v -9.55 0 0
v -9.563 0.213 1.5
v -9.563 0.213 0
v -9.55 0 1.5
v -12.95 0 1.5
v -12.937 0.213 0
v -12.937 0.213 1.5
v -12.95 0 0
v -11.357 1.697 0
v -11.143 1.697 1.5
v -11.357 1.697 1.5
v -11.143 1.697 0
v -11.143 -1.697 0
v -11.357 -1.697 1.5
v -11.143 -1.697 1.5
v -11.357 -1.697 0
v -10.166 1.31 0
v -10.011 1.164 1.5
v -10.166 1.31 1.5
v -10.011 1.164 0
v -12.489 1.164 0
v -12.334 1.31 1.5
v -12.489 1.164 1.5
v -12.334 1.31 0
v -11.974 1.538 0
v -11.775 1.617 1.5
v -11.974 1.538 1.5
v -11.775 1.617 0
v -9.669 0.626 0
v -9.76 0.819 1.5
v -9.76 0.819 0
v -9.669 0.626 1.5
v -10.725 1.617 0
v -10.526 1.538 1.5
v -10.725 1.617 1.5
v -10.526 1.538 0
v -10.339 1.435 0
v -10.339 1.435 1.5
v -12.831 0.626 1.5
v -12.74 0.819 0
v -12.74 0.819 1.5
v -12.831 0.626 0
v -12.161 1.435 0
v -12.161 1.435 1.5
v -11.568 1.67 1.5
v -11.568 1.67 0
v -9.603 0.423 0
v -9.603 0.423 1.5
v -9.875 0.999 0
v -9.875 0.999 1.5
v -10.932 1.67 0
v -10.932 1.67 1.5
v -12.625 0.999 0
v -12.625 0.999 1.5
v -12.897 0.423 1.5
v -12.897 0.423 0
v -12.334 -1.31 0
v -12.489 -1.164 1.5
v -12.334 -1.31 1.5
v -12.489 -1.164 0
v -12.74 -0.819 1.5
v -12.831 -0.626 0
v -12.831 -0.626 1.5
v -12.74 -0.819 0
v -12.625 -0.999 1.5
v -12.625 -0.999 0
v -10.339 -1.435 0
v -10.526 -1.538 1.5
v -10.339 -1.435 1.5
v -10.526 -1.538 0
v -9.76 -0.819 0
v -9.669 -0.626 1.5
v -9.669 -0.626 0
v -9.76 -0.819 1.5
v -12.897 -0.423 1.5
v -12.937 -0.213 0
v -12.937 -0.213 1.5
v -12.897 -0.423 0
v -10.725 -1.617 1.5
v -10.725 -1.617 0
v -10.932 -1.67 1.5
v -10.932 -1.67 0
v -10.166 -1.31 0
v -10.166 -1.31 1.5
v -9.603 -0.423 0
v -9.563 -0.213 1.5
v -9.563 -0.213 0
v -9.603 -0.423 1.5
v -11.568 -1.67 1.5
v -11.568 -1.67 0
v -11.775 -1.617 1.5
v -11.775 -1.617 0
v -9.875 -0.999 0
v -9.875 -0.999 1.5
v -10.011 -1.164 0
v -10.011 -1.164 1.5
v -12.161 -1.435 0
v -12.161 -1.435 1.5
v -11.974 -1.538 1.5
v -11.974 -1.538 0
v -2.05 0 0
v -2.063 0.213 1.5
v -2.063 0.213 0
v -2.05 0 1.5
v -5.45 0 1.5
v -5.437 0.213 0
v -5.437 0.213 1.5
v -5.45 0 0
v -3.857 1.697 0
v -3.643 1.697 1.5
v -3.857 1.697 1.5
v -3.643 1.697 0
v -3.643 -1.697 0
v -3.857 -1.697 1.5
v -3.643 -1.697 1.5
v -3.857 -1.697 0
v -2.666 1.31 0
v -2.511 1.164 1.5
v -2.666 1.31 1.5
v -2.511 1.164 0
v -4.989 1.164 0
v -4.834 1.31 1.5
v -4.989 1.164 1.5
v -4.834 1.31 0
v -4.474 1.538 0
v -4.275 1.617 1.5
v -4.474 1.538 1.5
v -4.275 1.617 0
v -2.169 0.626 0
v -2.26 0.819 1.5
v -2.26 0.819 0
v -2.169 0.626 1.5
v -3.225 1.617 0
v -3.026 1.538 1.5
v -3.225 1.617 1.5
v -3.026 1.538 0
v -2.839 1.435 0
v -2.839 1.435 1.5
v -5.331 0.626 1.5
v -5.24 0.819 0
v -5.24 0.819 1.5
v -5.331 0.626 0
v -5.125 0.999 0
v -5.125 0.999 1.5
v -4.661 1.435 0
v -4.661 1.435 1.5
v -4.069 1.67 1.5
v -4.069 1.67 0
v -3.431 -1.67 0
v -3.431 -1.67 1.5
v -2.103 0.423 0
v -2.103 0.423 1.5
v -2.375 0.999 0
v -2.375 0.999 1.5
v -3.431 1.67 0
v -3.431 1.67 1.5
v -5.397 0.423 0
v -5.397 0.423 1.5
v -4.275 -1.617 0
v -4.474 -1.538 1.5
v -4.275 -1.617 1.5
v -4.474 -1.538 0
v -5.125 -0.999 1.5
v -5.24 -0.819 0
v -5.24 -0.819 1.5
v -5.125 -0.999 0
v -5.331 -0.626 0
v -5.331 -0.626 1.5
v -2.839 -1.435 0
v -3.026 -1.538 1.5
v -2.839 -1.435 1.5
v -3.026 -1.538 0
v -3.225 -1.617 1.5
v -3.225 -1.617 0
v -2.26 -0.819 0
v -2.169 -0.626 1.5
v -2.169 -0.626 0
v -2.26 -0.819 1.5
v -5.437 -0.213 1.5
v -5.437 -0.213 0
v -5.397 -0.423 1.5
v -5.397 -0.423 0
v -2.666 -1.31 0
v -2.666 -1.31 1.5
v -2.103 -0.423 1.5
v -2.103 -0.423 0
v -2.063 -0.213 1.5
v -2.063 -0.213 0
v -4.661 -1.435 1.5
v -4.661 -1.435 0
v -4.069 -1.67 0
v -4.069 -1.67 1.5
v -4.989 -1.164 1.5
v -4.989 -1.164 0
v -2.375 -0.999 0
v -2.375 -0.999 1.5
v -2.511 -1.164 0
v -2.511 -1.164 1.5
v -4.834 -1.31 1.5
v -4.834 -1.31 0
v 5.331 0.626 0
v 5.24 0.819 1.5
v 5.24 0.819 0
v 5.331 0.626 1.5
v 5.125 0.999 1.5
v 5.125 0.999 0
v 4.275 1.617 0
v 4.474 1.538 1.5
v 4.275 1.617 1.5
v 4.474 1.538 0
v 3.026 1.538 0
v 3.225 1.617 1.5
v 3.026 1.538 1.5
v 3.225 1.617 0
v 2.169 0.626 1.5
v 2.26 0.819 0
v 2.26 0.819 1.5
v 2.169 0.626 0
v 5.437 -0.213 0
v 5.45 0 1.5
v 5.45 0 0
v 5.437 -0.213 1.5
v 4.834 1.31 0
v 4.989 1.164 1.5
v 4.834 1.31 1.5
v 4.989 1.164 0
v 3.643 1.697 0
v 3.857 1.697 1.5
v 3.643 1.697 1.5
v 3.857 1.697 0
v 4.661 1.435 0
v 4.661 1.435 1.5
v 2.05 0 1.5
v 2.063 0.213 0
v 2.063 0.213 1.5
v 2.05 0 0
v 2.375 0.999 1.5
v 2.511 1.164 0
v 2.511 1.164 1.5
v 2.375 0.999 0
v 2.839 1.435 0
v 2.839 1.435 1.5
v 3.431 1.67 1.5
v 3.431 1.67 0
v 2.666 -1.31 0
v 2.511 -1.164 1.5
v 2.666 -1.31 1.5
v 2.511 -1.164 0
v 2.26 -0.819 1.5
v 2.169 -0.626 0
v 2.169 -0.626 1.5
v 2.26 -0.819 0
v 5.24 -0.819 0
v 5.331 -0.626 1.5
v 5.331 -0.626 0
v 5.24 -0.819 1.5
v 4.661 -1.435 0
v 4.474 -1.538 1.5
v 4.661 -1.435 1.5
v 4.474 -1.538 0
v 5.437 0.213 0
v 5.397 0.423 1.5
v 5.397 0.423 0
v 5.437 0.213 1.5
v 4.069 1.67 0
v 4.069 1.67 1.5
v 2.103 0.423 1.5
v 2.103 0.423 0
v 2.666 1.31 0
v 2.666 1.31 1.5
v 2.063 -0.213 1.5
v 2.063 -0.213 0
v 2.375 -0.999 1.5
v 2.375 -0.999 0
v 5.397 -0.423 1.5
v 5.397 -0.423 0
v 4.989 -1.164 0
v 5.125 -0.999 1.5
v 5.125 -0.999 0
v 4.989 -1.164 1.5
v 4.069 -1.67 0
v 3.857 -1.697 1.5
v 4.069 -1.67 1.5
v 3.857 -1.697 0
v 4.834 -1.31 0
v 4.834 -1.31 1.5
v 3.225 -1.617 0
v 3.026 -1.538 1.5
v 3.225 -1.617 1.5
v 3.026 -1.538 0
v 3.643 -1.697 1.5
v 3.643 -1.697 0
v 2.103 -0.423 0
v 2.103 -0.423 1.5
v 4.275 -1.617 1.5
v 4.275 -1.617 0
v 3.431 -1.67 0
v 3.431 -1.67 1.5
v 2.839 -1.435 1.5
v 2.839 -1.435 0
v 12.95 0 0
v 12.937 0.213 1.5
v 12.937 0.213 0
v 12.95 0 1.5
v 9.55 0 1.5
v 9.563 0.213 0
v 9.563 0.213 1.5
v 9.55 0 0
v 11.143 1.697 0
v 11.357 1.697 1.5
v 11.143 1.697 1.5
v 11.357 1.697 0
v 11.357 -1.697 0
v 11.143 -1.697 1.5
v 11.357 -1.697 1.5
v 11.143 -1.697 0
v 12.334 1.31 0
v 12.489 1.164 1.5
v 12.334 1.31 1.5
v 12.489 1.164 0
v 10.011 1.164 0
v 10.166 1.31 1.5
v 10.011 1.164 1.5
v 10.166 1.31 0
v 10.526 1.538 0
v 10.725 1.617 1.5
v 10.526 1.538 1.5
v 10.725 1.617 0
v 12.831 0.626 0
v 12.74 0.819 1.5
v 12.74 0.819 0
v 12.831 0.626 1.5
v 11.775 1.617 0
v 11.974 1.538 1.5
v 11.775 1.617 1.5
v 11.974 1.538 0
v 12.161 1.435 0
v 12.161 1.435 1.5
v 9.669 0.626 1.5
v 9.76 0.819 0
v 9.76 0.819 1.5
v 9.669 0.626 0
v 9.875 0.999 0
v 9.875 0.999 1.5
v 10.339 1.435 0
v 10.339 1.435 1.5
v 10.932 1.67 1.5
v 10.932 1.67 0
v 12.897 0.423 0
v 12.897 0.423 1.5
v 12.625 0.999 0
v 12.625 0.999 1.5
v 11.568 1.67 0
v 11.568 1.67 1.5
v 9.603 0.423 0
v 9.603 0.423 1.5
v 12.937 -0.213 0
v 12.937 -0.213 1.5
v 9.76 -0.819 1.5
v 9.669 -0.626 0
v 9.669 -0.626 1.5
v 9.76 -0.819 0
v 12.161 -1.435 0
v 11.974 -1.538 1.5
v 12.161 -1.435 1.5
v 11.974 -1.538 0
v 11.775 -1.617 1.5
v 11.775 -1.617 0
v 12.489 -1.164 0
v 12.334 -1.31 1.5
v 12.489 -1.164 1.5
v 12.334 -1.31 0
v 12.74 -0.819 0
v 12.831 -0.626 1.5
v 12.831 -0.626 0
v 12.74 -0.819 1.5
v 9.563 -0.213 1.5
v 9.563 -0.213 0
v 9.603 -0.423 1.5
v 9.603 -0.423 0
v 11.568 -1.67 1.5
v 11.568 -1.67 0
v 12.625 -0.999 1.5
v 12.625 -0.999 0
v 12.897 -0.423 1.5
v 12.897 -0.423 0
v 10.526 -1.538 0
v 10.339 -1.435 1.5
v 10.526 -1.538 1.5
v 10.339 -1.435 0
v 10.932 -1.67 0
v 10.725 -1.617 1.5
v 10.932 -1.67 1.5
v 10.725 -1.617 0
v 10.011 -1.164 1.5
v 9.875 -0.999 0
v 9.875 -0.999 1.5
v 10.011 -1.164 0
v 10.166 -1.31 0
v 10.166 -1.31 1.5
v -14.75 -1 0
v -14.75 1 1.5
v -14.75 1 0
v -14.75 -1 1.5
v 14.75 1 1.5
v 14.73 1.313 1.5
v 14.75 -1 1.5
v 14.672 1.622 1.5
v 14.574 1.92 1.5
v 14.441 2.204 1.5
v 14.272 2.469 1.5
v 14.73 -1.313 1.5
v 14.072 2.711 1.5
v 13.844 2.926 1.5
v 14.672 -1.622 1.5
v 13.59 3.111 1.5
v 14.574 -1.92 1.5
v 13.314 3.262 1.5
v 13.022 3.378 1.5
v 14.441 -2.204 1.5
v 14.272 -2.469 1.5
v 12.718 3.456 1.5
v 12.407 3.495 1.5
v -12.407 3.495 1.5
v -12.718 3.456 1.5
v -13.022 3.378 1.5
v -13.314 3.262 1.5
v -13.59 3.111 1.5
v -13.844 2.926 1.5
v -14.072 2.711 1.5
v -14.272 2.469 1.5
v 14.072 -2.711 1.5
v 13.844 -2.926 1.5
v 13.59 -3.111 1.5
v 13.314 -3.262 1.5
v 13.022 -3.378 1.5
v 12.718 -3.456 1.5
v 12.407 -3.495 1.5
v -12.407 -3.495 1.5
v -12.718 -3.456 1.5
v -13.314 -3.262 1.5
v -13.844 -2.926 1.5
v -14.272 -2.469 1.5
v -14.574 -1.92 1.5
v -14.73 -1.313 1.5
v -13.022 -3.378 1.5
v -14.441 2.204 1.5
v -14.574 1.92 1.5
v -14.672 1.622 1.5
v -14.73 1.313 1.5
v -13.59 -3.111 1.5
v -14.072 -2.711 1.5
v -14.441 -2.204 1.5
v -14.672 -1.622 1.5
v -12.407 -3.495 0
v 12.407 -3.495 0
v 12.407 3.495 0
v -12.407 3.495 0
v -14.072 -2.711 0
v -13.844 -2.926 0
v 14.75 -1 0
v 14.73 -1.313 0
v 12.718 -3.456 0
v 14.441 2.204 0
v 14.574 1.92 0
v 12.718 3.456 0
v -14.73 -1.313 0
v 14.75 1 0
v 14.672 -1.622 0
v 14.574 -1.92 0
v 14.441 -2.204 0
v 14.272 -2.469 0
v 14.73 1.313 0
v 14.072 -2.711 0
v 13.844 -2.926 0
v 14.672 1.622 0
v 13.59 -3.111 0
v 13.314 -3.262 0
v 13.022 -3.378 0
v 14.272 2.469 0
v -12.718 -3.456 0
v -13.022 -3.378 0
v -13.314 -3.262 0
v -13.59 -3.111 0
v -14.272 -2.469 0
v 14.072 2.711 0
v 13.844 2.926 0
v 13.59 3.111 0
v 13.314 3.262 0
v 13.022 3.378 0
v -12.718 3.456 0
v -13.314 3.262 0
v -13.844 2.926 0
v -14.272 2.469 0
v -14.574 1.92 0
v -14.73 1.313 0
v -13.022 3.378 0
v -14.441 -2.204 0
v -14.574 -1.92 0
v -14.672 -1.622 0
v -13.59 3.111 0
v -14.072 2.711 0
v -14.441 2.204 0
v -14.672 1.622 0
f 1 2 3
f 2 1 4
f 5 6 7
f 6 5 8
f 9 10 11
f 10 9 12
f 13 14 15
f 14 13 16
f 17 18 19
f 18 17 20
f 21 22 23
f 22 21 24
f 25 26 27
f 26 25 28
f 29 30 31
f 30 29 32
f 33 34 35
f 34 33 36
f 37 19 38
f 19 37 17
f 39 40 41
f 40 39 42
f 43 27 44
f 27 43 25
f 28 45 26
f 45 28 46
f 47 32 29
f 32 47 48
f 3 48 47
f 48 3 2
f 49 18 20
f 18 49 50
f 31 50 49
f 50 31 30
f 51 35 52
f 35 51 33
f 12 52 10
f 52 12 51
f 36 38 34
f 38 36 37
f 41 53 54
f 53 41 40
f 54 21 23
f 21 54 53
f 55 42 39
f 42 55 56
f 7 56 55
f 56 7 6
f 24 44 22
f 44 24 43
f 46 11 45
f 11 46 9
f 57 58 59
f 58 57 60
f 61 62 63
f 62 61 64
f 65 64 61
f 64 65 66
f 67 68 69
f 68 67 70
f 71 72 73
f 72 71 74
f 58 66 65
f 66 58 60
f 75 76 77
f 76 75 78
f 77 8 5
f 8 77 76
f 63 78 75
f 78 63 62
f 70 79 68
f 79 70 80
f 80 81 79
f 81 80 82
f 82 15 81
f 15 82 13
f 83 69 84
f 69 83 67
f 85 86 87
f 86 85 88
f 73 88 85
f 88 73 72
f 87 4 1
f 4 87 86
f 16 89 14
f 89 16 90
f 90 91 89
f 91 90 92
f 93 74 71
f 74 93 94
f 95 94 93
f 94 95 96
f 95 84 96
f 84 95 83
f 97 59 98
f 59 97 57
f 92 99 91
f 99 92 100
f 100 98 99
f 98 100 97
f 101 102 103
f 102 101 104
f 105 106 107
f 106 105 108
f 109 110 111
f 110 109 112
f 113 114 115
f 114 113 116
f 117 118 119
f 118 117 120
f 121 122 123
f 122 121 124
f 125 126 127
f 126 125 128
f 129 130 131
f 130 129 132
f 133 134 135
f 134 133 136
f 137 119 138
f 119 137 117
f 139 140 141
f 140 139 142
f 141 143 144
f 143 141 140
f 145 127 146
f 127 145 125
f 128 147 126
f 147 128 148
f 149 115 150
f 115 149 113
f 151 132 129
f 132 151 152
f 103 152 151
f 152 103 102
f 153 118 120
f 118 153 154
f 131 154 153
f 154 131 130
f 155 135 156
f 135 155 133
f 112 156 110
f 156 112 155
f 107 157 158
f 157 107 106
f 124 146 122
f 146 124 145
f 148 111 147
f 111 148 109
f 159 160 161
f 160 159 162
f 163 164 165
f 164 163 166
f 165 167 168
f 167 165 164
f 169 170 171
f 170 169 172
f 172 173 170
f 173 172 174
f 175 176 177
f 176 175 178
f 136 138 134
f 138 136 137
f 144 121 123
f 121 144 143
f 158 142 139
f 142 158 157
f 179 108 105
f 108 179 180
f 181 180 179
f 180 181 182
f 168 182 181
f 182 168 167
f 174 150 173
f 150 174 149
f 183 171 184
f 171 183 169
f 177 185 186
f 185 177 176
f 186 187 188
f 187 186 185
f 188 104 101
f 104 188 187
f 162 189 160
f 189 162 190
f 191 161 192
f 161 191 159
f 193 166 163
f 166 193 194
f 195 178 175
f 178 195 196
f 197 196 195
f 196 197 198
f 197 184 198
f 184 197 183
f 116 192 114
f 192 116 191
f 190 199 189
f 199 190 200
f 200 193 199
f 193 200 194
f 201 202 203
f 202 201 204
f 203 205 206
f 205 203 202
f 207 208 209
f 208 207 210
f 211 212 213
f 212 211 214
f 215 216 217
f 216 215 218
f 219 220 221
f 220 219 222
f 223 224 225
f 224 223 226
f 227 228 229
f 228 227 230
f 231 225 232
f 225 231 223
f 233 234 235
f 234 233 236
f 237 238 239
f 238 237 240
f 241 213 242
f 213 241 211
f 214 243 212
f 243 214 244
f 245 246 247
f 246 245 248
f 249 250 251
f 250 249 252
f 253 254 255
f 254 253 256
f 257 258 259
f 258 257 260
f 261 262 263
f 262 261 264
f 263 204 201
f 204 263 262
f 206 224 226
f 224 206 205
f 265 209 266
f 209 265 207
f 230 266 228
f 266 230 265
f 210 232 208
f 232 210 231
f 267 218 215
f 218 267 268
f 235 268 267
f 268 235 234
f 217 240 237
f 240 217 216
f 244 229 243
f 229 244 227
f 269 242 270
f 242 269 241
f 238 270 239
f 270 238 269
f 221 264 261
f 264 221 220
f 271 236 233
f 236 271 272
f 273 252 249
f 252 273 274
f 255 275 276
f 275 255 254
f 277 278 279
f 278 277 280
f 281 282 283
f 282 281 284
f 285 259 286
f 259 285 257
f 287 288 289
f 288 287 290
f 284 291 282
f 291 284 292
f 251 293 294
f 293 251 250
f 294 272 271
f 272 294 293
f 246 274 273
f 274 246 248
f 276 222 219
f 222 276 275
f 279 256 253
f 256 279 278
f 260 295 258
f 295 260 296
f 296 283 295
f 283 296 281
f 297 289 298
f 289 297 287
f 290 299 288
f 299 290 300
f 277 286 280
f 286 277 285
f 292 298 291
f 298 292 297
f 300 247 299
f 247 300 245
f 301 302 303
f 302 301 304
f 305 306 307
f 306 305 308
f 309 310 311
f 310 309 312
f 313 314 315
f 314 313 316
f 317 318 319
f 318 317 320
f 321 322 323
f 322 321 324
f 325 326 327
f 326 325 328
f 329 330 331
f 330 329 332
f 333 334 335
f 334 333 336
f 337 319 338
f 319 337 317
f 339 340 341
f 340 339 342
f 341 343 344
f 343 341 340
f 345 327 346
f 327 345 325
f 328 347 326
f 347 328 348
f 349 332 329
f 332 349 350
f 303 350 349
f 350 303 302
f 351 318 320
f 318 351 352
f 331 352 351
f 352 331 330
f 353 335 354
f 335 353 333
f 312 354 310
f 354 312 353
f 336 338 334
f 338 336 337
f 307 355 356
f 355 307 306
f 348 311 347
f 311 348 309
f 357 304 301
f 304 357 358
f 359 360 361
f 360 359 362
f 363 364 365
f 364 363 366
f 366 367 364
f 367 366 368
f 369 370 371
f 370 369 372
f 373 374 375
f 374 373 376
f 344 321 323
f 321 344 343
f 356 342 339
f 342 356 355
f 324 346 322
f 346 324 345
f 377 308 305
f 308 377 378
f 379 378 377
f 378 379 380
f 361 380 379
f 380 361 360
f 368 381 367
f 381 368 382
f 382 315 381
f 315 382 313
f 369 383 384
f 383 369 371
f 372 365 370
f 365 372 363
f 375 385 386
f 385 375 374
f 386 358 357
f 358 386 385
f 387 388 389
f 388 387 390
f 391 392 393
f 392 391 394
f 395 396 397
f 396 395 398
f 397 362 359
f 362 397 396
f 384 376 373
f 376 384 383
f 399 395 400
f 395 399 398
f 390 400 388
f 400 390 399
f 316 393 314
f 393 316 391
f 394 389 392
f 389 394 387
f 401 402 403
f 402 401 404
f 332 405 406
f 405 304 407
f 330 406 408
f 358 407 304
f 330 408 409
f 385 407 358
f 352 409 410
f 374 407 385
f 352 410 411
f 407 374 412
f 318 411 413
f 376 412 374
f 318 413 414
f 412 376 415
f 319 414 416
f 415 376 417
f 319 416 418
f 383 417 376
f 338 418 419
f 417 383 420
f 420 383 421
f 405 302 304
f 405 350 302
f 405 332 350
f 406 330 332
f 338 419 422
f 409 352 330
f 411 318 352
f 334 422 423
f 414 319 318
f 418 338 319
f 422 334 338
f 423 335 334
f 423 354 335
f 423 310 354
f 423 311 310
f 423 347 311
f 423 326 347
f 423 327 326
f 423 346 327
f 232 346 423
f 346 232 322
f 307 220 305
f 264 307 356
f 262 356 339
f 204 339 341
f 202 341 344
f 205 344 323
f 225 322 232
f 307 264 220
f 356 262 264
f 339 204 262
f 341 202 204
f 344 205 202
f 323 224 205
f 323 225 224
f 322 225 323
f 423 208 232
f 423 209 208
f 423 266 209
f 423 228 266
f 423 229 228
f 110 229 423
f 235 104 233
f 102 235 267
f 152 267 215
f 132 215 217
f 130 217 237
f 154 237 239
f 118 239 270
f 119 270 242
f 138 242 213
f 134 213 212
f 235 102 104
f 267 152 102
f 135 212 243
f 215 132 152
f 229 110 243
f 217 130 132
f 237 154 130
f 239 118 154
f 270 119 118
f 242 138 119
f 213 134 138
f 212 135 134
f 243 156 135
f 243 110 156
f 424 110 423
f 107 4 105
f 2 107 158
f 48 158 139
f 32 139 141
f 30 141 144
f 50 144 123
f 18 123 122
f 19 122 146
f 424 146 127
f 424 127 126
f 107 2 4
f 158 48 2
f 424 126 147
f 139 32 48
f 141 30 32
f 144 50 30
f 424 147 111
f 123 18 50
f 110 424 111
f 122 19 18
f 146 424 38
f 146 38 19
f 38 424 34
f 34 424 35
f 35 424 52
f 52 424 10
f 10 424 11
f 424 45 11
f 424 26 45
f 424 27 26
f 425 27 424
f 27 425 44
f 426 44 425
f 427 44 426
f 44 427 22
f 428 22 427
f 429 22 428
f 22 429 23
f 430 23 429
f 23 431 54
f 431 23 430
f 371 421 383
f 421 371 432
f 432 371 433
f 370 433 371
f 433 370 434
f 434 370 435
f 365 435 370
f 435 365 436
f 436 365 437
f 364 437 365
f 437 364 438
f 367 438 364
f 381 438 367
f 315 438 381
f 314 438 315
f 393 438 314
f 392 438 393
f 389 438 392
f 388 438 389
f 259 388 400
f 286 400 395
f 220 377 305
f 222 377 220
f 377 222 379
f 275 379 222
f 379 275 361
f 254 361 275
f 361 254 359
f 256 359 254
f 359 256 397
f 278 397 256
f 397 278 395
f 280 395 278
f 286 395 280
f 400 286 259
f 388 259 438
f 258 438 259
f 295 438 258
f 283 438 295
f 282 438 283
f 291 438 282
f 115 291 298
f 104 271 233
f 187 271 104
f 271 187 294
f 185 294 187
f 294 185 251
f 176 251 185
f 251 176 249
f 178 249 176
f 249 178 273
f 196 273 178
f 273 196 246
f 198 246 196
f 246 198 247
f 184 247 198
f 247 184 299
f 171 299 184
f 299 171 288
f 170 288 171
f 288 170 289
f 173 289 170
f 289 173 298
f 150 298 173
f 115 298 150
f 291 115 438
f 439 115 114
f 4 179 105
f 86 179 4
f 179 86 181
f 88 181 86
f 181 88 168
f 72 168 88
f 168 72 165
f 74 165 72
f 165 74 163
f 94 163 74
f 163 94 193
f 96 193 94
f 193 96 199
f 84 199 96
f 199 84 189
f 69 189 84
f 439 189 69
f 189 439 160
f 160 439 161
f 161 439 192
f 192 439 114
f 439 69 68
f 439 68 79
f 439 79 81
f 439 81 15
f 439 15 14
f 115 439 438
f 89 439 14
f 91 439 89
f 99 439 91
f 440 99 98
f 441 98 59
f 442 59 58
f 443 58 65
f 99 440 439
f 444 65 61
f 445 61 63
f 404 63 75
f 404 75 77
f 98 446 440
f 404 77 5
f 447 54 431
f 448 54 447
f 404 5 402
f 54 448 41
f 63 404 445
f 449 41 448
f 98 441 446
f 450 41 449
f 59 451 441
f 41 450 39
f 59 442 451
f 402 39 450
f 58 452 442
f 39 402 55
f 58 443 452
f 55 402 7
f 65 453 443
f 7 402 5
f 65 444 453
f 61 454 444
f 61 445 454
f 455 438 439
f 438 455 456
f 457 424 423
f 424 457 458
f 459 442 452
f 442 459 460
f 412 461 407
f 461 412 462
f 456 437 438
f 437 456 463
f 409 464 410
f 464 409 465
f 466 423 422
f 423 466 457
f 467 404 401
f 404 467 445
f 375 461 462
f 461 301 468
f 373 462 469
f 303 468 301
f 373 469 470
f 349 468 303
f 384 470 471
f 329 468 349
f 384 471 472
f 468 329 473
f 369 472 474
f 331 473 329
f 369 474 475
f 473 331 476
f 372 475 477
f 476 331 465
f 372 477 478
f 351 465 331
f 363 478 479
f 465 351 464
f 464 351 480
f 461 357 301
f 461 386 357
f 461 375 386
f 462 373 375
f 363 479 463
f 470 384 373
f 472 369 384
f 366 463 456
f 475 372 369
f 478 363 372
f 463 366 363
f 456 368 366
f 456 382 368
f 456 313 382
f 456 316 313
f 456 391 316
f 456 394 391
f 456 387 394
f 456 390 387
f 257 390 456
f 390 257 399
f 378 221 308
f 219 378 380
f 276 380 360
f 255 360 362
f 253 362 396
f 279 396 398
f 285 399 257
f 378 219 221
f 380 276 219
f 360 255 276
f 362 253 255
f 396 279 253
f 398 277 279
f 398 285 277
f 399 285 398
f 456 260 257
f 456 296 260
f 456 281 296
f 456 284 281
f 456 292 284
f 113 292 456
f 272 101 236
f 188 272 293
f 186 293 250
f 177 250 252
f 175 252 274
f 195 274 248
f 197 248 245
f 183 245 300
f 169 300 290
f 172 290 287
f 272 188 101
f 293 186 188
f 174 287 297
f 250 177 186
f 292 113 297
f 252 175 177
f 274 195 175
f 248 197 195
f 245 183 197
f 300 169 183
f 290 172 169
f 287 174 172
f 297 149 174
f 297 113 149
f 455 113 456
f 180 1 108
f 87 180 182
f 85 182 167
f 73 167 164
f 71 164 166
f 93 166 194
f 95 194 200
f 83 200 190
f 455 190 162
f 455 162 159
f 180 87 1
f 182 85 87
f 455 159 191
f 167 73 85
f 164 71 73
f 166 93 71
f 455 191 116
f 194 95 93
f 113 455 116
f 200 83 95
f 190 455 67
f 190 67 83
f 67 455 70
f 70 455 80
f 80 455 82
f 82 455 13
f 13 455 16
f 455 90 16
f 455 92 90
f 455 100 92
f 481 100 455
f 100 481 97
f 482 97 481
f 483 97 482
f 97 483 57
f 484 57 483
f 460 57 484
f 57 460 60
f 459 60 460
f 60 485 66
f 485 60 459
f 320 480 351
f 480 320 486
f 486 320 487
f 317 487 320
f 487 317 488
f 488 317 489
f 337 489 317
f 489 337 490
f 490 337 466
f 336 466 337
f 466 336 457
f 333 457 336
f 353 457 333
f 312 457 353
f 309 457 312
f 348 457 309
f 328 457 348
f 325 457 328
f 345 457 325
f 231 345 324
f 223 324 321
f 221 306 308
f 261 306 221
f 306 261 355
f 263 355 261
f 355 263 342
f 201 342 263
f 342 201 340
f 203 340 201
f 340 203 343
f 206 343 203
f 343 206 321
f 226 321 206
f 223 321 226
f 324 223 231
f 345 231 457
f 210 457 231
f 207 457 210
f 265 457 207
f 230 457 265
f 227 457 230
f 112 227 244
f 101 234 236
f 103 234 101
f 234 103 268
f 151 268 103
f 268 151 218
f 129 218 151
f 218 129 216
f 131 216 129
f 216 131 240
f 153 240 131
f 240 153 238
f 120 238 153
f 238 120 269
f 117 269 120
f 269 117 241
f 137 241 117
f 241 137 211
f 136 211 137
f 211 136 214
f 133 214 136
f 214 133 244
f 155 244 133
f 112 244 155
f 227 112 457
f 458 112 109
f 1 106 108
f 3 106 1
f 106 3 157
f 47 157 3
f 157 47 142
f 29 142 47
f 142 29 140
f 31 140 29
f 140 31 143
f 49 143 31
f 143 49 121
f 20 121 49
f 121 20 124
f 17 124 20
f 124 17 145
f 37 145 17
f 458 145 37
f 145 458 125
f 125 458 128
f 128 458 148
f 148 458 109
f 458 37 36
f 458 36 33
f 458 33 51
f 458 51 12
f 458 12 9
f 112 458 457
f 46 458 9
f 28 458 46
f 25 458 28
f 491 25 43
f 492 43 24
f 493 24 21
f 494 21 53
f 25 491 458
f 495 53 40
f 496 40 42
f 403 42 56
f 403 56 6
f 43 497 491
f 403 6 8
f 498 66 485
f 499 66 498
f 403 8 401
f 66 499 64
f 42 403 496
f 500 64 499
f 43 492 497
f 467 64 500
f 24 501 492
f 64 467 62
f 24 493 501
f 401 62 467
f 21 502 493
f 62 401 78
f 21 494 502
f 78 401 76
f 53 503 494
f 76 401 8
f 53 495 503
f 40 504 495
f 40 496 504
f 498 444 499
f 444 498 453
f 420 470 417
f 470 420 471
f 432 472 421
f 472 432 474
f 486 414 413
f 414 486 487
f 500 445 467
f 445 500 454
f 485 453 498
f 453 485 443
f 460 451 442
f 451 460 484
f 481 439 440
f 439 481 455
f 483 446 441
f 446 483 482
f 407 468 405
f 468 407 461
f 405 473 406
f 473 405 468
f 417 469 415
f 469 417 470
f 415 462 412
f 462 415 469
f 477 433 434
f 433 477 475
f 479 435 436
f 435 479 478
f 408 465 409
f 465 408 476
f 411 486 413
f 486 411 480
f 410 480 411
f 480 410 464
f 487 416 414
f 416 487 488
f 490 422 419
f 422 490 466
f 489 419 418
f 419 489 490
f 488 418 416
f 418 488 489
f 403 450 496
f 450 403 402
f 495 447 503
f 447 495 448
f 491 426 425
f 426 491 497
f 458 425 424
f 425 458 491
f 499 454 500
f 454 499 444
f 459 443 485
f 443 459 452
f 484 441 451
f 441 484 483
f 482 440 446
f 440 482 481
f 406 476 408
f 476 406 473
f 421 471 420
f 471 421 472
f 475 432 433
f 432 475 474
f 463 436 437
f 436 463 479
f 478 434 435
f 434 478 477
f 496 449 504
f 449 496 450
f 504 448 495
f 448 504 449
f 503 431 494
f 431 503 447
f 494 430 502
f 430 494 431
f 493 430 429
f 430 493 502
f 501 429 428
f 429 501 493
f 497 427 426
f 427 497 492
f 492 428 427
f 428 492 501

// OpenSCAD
$fn = 50;


difference() {
	union() {
		translate(v = [0, 0, 0]) {
			rotate(a = [0, 0, 0]) {
				hull() {
					translate(v = [-12.2500000000, 1.0000000000, 0]) {
						rotate(a = [0, 0, 0]) {
							translate(v = [0, 0, 0]) {
								rotate(a = [0, 0, 0]) {
									cylinder(h = 1.5000000000, r = 2.5000000000);
								}
							}
						}
					}
					translate(v = [12.2500000000, 1.0000000000, 0]) {
						rotate(a = [0, 0, 0]) {
							translate(v = [0, 0, 0]) {
								rotate(a = [0, 0, 0]) {
									cylinder(h = 1.5000000000, r = 2.5000000000);
								}
							}
						}
					}
					translate(v = [-12.2500000000, -1.0000000000, 0]) {
						rotate(a = [0, 0, 0]) {
							translate(v = [0, 0, 0]) {
								rotate(a = [0, 0, 0]) {
									cylinder(h = 1.5000000000, r = 2.5000000000);
								}
							}
						}
					}
					translate(v = [12.2500000000, -1.0000000000, 0]) {
						rotate(a = [0, 0, 0]) {
							translate(v = [0, 0, 0]) {
								rotate(a = [0, 0, 0]) {
									cylinder(h = 1.5000000000, r = 2.5000000000);
								}
							}
						}
					}
				}
			}
		}
	}
	union() {
		translate(v = [-11.2500000000, 0.0000000000, 0]) {
			rotate(a = [0, 0, 0]) {
				translate(v = [0, 0, -50]) {
					rotate(a = [0, 0, 0]) {
						cylinder(h = 100, r = 1.7000000000);
					}
				}
			}
		}
		translate(v = [-3.7500000000, 0.0000000000, 0]) {
			rotate(a = [0, 0, 0]) {
				translate(v = [0, 0, -50]) {
					rotate(a = [0, 0, 0]) {
						cylinder(h = 100, r = 1.7000000000);
					}
				}
			}
		}
		translate(v = [3.7500000000, 0.0000000000, 0]) {
			rotate(a = [0, 0, 0]) {
				translate(v = [0, 0, -50]) {
					rotate(a = [0, 0, 0]) {
						cylinder(h = 100, r = 1.7000000000);
					}
				}
			}
		}
		translate(v = [11.2500000000, 0.0000000000, 0]) {
			rotate(a = [0, 0, 0]) {
				translate(v = [0, 0, -50]) {
					rotate(a = [0, 0, 0]) {
						cylinder(h = 100, r = 1.7000000000);
					}
				}
			}
		}
	}
}
